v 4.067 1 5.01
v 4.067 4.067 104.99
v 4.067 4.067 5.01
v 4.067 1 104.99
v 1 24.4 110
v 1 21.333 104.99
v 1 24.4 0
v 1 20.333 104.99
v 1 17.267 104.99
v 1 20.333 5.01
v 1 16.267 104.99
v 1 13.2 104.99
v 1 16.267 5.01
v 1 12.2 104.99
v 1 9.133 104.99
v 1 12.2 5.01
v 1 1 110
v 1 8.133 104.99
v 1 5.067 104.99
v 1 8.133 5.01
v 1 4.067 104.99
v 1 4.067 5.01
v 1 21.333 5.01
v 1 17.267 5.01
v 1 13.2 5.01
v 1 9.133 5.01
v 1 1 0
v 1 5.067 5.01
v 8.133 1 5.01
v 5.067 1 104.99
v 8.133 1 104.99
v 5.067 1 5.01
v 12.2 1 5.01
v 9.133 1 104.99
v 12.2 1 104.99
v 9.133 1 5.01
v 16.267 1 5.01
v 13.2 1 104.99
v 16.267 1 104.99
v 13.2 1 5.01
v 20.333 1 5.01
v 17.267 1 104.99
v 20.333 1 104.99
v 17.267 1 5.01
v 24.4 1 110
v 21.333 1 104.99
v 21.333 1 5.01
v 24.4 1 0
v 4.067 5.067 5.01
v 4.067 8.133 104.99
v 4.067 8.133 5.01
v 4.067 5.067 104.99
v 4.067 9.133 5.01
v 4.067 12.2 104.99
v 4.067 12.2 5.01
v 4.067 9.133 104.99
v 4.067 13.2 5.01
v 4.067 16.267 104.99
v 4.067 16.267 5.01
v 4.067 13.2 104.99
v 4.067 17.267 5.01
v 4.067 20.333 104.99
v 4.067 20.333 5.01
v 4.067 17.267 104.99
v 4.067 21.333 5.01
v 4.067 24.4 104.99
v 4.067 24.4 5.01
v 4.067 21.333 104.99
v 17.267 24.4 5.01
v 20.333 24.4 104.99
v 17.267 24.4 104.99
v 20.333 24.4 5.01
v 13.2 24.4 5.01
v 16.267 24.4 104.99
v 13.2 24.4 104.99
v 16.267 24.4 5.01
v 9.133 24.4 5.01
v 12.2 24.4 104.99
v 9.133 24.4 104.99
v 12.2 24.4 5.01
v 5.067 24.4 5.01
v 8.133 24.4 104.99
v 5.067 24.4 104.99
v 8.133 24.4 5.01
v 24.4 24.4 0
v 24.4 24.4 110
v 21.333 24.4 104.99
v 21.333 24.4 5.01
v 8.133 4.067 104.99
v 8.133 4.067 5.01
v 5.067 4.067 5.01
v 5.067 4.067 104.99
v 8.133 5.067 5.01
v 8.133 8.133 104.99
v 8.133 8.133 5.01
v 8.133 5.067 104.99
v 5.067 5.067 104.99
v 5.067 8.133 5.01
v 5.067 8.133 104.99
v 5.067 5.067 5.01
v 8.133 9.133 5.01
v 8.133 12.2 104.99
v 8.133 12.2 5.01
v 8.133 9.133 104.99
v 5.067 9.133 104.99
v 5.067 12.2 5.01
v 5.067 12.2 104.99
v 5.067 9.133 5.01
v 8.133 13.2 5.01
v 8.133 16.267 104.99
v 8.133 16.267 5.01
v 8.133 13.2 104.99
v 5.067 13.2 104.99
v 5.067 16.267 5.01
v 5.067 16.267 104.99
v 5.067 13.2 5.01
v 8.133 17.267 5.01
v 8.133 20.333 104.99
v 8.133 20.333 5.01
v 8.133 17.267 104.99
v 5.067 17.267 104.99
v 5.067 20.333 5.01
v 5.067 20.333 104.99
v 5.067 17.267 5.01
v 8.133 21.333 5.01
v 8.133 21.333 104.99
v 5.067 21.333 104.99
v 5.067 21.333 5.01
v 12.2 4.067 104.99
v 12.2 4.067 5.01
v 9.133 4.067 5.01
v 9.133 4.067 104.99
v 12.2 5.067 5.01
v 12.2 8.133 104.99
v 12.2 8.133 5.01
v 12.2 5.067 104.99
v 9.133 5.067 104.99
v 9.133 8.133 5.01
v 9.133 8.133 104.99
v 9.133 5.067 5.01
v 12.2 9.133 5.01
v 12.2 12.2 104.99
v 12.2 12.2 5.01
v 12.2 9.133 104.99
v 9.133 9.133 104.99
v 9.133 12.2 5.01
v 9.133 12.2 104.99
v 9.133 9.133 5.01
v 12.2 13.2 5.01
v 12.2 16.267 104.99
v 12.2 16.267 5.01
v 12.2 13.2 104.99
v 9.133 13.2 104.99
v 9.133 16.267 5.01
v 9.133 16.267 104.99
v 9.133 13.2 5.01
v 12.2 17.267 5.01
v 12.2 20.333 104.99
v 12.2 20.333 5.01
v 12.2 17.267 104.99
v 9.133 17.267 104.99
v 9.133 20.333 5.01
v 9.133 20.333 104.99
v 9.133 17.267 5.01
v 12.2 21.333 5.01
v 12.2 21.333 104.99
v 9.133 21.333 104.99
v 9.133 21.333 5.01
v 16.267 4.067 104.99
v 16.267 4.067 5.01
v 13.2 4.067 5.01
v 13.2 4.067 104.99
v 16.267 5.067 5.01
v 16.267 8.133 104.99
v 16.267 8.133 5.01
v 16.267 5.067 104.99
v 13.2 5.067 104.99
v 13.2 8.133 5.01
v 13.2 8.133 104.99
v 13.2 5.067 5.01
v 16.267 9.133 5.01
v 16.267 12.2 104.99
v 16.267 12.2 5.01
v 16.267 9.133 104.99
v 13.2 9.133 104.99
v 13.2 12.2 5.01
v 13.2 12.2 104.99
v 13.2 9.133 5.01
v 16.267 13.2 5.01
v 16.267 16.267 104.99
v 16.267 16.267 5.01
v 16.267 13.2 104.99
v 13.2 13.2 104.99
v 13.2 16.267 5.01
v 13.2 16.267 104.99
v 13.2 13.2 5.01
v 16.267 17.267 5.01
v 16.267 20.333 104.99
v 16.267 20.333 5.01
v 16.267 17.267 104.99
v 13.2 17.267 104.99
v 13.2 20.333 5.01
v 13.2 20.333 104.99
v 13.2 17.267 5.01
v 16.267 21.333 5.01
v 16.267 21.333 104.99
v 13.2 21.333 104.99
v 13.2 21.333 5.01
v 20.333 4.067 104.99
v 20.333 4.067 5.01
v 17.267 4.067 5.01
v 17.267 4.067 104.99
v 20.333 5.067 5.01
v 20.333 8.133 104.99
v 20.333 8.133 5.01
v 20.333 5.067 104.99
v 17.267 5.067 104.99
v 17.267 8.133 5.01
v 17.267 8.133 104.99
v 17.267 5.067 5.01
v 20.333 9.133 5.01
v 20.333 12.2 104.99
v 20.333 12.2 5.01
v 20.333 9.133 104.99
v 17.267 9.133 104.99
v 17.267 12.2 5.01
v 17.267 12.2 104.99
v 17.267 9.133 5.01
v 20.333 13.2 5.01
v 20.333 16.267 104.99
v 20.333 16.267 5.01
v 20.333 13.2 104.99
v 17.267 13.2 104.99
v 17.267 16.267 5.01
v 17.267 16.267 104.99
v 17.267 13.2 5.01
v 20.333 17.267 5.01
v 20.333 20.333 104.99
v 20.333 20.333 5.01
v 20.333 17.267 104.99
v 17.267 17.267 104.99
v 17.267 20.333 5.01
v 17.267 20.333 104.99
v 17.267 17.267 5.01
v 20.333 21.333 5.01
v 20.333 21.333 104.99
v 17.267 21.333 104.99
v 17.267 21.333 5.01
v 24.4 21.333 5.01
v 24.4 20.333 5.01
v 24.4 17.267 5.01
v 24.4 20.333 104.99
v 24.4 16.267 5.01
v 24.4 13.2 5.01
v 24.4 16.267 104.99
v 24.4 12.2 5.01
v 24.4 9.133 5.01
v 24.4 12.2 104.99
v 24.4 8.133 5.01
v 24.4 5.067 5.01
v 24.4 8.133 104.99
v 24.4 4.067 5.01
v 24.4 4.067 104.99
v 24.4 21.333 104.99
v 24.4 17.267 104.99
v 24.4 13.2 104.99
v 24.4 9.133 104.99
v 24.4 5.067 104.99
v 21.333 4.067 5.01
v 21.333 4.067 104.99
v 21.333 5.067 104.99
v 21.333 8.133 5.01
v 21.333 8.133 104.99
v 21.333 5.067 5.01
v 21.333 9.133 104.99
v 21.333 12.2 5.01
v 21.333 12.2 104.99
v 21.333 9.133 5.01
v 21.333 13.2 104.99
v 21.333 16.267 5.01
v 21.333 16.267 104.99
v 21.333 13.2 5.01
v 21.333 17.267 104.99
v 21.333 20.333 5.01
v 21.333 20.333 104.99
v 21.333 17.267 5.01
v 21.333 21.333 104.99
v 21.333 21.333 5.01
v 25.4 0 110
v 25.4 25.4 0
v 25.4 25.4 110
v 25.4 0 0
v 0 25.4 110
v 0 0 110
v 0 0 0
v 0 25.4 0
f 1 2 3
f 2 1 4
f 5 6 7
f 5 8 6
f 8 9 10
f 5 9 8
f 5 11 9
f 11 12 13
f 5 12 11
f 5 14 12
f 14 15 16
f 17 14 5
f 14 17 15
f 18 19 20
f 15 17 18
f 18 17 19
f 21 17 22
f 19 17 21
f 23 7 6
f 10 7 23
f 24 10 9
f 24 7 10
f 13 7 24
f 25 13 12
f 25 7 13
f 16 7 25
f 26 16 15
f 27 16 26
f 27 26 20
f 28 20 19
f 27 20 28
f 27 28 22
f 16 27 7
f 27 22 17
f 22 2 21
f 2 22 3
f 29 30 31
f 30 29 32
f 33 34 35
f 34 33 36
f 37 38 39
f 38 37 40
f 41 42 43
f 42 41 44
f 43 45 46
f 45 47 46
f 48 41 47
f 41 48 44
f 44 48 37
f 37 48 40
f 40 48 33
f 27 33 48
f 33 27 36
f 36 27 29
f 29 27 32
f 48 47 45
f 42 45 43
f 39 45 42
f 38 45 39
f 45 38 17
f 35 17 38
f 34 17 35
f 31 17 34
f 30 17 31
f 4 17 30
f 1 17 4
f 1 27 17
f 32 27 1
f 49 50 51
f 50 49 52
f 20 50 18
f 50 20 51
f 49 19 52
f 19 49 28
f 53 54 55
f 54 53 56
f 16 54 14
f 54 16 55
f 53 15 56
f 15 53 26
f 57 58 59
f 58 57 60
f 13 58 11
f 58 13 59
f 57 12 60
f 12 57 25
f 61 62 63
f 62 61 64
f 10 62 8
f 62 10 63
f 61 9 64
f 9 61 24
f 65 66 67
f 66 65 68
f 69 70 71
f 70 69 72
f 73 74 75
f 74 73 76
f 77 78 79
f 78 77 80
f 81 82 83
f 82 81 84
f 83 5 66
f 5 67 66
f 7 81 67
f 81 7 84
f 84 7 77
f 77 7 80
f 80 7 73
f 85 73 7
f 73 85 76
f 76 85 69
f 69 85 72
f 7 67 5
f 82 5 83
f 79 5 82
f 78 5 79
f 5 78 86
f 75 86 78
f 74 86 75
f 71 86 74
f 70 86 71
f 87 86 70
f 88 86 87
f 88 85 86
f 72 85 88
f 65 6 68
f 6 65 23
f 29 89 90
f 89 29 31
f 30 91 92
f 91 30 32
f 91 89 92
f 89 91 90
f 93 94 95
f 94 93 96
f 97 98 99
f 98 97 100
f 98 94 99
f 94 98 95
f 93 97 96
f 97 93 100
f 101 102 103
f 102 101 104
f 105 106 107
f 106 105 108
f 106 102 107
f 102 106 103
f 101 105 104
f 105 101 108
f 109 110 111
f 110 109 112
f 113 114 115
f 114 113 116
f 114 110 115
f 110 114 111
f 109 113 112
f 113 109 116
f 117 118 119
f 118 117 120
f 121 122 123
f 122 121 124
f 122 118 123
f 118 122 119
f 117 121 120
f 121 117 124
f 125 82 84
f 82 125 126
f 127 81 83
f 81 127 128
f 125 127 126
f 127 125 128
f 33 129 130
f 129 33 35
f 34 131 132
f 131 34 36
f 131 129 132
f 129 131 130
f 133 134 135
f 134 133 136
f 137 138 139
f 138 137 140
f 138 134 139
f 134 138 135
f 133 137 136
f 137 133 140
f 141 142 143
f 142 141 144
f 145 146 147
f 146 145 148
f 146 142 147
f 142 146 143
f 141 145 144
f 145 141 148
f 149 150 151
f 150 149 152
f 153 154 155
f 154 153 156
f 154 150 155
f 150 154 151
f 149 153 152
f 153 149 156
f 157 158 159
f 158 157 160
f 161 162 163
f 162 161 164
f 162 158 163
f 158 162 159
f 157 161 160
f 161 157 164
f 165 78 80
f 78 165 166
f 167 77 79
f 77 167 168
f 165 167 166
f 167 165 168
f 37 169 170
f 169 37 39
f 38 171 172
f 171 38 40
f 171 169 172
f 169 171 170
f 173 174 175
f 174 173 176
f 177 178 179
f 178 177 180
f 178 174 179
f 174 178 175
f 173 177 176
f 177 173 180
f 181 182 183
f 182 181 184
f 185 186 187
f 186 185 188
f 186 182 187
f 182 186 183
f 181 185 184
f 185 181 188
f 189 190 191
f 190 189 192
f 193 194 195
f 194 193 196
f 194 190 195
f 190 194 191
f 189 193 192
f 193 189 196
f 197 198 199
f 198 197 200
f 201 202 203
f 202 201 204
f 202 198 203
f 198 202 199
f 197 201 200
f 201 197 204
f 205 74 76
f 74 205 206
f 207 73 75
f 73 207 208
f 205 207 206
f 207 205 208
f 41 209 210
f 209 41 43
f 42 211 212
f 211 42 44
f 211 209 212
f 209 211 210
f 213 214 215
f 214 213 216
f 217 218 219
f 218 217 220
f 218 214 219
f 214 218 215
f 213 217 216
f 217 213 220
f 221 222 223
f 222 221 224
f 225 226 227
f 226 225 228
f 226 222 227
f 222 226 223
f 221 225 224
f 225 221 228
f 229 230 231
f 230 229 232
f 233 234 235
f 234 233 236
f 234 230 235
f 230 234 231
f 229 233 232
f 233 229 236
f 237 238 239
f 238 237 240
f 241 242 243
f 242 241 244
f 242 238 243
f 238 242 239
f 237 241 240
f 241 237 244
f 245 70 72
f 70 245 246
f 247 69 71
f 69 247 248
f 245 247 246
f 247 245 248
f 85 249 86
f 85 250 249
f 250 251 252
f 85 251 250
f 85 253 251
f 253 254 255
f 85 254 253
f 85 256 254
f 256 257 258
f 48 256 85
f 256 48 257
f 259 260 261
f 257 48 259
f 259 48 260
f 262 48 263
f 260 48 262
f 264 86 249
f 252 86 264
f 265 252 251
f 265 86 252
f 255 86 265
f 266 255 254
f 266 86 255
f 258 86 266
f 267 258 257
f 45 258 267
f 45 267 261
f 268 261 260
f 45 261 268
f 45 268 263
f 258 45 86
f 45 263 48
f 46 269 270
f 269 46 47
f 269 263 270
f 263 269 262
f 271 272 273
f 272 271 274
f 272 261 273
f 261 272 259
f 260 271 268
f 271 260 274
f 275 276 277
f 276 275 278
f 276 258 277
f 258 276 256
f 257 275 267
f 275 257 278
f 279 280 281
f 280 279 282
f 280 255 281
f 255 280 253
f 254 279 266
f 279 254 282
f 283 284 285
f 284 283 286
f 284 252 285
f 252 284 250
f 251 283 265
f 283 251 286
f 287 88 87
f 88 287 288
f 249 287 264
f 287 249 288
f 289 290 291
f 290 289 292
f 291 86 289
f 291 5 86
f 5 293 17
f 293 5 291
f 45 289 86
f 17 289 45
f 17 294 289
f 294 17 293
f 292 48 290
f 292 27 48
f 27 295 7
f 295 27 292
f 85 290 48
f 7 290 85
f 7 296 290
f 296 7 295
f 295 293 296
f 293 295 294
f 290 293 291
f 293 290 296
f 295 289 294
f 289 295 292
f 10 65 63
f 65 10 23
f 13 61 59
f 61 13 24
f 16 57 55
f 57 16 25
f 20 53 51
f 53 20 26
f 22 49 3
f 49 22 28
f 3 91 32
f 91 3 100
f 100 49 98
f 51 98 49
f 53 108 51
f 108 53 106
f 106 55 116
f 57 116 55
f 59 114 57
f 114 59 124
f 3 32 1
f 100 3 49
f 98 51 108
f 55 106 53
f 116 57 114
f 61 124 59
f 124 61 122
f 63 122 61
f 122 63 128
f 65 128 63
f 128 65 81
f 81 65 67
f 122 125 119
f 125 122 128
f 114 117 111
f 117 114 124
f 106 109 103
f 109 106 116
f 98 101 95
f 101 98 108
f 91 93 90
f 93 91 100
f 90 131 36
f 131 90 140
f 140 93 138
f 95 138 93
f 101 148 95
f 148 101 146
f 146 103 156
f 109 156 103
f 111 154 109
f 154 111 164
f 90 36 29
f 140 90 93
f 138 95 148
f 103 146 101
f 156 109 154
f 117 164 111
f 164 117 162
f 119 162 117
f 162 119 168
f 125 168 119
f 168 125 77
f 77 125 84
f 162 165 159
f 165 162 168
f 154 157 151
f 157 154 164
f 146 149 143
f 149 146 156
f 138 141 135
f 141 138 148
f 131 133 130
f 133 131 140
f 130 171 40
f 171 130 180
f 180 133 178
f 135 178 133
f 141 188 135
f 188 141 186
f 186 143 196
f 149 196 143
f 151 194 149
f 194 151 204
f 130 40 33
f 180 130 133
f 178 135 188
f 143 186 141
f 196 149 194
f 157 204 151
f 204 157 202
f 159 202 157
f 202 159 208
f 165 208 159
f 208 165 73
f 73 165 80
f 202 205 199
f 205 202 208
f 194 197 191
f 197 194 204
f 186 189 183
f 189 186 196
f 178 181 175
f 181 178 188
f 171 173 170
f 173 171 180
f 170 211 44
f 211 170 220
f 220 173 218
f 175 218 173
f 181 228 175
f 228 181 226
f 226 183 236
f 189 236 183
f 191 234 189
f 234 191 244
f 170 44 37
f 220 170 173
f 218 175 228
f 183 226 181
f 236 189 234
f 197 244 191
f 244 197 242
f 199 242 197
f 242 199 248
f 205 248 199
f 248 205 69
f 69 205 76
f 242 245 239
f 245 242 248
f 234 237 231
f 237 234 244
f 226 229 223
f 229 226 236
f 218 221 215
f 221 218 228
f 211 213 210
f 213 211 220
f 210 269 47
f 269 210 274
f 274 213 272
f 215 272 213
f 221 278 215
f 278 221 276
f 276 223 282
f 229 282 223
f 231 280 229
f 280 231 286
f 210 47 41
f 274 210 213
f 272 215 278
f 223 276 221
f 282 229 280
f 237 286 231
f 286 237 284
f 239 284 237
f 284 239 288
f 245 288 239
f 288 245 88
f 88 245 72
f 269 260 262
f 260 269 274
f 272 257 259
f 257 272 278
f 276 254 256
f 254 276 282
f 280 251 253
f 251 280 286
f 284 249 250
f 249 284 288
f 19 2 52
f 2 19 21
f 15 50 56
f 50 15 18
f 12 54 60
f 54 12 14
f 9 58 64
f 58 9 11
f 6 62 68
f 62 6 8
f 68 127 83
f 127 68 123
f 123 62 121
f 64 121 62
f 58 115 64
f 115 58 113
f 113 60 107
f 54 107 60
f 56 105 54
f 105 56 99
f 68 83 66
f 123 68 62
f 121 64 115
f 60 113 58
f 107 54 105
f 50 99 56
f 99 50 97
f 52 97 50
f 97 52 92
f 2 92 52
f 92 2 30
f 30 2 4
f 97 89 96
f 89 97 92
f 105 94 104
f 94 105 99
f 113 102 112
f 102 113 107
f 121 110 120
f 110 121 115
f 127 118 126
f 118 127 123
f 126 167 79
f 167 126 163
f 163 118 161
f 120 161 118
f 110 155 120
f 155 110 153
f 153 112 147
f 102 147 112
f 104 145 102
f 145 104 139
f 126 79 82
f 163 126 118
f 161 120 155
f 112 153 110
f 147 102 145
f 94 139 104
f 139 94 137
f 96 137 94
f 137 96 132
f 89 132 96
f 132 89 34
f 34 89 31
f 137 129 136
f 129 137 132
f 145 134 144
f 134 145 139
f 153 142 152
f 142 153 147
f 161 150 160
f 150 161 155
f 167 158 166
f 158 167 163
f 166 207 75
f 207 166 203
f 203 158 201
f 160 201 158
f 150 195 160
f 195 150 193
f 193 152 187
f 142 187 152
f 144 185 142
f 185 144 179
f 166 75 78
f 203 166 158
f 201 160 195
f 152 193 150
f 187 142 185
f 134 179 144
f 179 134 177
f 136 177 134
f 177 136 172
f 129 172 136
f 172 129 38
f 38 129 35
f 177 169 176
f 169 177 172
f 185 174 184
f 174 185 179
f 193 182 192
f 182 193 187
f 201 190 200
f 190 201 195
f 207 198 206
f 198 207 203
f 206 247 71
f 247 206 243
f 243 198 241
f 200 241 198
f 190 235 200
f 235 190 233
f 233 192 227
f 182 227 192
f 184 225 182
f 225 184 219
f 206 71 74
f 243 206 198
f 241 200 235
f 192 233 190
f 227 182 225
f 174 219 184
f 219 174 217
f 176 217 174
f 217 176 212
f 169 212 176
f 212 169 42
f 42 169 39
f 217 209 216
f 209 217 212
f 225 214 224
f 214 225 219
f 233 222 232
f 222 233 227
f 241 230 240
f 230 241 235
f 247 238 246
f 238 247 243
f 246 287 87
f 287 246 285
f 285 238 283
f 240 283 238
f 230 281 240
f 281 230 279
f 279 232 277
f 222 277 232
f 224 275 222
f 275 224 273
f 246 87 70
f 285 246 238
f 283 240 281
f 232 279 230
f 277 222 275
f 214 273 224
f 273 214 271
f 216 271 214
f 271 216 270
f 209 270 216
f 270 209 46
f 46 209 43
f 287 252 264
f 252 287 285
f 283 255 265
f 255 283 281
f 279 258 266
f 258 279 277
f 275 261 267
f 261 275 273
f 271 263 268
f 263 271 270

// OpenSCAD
// V3.2 레퍼런스 6×6 셀 (Reference 6x6 Cell)
// [공통] 외부 25.4×25.4 mm, 외벽 1 mm, 전체 110 mm
// Inlet Buffer Z=0~5, Main Z=5~105 (100mm, 6×6 채널), Outlet Buffer Z=105~110
// 내벽 1 mm, 23.4 mm 내부를 6×6 채널로 분할

OUTER_X = 25.4;
OUTER_Y = 25.4;
OUTER_Z = 110.0;
WALL_MM = 1.0;
INNER_XY = 23.4;
BUF_Z_MM = 5.0;
MAIN_Z_START = 5.0;
MAIN_Z_LEN   = 100.0;

// 내벽 5개 × 1 mm, 채널 6개 → 채널폭 = (23.4 - 5*1) / 6 = 3.0667
WALL_INNER = 1.0;
CHANNEL_W  = (INNER_XY - 5 * WALL_INNER) / 6;
PERIOD     = CHANNEL_W + WALL_INNER;

difference() {
    cube([OUTER_X, OUTER_Y, OUTER_Z], center = false);
    // Inlet buffer: 23.4×23.4×5 at (1,1,0)
    translate([WALL_MM, WALL_MM, 0])
        cube([INNER_XY, INNER_XY, BUF_Z_MM + 0.01], center = false);
    // Outlet buffer: 23.4×23.4×5 at (1,1,105)
    translate([WALL_MM, WALL_MM, OUTER_Z - BUF_Z_MM - 0.01])
        cube([INNER_XY, INNER_XY, BUF_Z_MM + 0.01], center = false);
    // Main section: 36 채널 구멍 (Z=5~105)
    for (kx = [0 : 5]) {
        for (ky = [0 : 5]) {
            translate([WALL_MM + kx*PERIOD, WALL_MM + ky*PERIOD, MAIN_Z_START])
                cube([CHANNEL_W, CHANNEL_W, MAIN_Z_LEN + 0.01], center = false);
        }
    }
}
